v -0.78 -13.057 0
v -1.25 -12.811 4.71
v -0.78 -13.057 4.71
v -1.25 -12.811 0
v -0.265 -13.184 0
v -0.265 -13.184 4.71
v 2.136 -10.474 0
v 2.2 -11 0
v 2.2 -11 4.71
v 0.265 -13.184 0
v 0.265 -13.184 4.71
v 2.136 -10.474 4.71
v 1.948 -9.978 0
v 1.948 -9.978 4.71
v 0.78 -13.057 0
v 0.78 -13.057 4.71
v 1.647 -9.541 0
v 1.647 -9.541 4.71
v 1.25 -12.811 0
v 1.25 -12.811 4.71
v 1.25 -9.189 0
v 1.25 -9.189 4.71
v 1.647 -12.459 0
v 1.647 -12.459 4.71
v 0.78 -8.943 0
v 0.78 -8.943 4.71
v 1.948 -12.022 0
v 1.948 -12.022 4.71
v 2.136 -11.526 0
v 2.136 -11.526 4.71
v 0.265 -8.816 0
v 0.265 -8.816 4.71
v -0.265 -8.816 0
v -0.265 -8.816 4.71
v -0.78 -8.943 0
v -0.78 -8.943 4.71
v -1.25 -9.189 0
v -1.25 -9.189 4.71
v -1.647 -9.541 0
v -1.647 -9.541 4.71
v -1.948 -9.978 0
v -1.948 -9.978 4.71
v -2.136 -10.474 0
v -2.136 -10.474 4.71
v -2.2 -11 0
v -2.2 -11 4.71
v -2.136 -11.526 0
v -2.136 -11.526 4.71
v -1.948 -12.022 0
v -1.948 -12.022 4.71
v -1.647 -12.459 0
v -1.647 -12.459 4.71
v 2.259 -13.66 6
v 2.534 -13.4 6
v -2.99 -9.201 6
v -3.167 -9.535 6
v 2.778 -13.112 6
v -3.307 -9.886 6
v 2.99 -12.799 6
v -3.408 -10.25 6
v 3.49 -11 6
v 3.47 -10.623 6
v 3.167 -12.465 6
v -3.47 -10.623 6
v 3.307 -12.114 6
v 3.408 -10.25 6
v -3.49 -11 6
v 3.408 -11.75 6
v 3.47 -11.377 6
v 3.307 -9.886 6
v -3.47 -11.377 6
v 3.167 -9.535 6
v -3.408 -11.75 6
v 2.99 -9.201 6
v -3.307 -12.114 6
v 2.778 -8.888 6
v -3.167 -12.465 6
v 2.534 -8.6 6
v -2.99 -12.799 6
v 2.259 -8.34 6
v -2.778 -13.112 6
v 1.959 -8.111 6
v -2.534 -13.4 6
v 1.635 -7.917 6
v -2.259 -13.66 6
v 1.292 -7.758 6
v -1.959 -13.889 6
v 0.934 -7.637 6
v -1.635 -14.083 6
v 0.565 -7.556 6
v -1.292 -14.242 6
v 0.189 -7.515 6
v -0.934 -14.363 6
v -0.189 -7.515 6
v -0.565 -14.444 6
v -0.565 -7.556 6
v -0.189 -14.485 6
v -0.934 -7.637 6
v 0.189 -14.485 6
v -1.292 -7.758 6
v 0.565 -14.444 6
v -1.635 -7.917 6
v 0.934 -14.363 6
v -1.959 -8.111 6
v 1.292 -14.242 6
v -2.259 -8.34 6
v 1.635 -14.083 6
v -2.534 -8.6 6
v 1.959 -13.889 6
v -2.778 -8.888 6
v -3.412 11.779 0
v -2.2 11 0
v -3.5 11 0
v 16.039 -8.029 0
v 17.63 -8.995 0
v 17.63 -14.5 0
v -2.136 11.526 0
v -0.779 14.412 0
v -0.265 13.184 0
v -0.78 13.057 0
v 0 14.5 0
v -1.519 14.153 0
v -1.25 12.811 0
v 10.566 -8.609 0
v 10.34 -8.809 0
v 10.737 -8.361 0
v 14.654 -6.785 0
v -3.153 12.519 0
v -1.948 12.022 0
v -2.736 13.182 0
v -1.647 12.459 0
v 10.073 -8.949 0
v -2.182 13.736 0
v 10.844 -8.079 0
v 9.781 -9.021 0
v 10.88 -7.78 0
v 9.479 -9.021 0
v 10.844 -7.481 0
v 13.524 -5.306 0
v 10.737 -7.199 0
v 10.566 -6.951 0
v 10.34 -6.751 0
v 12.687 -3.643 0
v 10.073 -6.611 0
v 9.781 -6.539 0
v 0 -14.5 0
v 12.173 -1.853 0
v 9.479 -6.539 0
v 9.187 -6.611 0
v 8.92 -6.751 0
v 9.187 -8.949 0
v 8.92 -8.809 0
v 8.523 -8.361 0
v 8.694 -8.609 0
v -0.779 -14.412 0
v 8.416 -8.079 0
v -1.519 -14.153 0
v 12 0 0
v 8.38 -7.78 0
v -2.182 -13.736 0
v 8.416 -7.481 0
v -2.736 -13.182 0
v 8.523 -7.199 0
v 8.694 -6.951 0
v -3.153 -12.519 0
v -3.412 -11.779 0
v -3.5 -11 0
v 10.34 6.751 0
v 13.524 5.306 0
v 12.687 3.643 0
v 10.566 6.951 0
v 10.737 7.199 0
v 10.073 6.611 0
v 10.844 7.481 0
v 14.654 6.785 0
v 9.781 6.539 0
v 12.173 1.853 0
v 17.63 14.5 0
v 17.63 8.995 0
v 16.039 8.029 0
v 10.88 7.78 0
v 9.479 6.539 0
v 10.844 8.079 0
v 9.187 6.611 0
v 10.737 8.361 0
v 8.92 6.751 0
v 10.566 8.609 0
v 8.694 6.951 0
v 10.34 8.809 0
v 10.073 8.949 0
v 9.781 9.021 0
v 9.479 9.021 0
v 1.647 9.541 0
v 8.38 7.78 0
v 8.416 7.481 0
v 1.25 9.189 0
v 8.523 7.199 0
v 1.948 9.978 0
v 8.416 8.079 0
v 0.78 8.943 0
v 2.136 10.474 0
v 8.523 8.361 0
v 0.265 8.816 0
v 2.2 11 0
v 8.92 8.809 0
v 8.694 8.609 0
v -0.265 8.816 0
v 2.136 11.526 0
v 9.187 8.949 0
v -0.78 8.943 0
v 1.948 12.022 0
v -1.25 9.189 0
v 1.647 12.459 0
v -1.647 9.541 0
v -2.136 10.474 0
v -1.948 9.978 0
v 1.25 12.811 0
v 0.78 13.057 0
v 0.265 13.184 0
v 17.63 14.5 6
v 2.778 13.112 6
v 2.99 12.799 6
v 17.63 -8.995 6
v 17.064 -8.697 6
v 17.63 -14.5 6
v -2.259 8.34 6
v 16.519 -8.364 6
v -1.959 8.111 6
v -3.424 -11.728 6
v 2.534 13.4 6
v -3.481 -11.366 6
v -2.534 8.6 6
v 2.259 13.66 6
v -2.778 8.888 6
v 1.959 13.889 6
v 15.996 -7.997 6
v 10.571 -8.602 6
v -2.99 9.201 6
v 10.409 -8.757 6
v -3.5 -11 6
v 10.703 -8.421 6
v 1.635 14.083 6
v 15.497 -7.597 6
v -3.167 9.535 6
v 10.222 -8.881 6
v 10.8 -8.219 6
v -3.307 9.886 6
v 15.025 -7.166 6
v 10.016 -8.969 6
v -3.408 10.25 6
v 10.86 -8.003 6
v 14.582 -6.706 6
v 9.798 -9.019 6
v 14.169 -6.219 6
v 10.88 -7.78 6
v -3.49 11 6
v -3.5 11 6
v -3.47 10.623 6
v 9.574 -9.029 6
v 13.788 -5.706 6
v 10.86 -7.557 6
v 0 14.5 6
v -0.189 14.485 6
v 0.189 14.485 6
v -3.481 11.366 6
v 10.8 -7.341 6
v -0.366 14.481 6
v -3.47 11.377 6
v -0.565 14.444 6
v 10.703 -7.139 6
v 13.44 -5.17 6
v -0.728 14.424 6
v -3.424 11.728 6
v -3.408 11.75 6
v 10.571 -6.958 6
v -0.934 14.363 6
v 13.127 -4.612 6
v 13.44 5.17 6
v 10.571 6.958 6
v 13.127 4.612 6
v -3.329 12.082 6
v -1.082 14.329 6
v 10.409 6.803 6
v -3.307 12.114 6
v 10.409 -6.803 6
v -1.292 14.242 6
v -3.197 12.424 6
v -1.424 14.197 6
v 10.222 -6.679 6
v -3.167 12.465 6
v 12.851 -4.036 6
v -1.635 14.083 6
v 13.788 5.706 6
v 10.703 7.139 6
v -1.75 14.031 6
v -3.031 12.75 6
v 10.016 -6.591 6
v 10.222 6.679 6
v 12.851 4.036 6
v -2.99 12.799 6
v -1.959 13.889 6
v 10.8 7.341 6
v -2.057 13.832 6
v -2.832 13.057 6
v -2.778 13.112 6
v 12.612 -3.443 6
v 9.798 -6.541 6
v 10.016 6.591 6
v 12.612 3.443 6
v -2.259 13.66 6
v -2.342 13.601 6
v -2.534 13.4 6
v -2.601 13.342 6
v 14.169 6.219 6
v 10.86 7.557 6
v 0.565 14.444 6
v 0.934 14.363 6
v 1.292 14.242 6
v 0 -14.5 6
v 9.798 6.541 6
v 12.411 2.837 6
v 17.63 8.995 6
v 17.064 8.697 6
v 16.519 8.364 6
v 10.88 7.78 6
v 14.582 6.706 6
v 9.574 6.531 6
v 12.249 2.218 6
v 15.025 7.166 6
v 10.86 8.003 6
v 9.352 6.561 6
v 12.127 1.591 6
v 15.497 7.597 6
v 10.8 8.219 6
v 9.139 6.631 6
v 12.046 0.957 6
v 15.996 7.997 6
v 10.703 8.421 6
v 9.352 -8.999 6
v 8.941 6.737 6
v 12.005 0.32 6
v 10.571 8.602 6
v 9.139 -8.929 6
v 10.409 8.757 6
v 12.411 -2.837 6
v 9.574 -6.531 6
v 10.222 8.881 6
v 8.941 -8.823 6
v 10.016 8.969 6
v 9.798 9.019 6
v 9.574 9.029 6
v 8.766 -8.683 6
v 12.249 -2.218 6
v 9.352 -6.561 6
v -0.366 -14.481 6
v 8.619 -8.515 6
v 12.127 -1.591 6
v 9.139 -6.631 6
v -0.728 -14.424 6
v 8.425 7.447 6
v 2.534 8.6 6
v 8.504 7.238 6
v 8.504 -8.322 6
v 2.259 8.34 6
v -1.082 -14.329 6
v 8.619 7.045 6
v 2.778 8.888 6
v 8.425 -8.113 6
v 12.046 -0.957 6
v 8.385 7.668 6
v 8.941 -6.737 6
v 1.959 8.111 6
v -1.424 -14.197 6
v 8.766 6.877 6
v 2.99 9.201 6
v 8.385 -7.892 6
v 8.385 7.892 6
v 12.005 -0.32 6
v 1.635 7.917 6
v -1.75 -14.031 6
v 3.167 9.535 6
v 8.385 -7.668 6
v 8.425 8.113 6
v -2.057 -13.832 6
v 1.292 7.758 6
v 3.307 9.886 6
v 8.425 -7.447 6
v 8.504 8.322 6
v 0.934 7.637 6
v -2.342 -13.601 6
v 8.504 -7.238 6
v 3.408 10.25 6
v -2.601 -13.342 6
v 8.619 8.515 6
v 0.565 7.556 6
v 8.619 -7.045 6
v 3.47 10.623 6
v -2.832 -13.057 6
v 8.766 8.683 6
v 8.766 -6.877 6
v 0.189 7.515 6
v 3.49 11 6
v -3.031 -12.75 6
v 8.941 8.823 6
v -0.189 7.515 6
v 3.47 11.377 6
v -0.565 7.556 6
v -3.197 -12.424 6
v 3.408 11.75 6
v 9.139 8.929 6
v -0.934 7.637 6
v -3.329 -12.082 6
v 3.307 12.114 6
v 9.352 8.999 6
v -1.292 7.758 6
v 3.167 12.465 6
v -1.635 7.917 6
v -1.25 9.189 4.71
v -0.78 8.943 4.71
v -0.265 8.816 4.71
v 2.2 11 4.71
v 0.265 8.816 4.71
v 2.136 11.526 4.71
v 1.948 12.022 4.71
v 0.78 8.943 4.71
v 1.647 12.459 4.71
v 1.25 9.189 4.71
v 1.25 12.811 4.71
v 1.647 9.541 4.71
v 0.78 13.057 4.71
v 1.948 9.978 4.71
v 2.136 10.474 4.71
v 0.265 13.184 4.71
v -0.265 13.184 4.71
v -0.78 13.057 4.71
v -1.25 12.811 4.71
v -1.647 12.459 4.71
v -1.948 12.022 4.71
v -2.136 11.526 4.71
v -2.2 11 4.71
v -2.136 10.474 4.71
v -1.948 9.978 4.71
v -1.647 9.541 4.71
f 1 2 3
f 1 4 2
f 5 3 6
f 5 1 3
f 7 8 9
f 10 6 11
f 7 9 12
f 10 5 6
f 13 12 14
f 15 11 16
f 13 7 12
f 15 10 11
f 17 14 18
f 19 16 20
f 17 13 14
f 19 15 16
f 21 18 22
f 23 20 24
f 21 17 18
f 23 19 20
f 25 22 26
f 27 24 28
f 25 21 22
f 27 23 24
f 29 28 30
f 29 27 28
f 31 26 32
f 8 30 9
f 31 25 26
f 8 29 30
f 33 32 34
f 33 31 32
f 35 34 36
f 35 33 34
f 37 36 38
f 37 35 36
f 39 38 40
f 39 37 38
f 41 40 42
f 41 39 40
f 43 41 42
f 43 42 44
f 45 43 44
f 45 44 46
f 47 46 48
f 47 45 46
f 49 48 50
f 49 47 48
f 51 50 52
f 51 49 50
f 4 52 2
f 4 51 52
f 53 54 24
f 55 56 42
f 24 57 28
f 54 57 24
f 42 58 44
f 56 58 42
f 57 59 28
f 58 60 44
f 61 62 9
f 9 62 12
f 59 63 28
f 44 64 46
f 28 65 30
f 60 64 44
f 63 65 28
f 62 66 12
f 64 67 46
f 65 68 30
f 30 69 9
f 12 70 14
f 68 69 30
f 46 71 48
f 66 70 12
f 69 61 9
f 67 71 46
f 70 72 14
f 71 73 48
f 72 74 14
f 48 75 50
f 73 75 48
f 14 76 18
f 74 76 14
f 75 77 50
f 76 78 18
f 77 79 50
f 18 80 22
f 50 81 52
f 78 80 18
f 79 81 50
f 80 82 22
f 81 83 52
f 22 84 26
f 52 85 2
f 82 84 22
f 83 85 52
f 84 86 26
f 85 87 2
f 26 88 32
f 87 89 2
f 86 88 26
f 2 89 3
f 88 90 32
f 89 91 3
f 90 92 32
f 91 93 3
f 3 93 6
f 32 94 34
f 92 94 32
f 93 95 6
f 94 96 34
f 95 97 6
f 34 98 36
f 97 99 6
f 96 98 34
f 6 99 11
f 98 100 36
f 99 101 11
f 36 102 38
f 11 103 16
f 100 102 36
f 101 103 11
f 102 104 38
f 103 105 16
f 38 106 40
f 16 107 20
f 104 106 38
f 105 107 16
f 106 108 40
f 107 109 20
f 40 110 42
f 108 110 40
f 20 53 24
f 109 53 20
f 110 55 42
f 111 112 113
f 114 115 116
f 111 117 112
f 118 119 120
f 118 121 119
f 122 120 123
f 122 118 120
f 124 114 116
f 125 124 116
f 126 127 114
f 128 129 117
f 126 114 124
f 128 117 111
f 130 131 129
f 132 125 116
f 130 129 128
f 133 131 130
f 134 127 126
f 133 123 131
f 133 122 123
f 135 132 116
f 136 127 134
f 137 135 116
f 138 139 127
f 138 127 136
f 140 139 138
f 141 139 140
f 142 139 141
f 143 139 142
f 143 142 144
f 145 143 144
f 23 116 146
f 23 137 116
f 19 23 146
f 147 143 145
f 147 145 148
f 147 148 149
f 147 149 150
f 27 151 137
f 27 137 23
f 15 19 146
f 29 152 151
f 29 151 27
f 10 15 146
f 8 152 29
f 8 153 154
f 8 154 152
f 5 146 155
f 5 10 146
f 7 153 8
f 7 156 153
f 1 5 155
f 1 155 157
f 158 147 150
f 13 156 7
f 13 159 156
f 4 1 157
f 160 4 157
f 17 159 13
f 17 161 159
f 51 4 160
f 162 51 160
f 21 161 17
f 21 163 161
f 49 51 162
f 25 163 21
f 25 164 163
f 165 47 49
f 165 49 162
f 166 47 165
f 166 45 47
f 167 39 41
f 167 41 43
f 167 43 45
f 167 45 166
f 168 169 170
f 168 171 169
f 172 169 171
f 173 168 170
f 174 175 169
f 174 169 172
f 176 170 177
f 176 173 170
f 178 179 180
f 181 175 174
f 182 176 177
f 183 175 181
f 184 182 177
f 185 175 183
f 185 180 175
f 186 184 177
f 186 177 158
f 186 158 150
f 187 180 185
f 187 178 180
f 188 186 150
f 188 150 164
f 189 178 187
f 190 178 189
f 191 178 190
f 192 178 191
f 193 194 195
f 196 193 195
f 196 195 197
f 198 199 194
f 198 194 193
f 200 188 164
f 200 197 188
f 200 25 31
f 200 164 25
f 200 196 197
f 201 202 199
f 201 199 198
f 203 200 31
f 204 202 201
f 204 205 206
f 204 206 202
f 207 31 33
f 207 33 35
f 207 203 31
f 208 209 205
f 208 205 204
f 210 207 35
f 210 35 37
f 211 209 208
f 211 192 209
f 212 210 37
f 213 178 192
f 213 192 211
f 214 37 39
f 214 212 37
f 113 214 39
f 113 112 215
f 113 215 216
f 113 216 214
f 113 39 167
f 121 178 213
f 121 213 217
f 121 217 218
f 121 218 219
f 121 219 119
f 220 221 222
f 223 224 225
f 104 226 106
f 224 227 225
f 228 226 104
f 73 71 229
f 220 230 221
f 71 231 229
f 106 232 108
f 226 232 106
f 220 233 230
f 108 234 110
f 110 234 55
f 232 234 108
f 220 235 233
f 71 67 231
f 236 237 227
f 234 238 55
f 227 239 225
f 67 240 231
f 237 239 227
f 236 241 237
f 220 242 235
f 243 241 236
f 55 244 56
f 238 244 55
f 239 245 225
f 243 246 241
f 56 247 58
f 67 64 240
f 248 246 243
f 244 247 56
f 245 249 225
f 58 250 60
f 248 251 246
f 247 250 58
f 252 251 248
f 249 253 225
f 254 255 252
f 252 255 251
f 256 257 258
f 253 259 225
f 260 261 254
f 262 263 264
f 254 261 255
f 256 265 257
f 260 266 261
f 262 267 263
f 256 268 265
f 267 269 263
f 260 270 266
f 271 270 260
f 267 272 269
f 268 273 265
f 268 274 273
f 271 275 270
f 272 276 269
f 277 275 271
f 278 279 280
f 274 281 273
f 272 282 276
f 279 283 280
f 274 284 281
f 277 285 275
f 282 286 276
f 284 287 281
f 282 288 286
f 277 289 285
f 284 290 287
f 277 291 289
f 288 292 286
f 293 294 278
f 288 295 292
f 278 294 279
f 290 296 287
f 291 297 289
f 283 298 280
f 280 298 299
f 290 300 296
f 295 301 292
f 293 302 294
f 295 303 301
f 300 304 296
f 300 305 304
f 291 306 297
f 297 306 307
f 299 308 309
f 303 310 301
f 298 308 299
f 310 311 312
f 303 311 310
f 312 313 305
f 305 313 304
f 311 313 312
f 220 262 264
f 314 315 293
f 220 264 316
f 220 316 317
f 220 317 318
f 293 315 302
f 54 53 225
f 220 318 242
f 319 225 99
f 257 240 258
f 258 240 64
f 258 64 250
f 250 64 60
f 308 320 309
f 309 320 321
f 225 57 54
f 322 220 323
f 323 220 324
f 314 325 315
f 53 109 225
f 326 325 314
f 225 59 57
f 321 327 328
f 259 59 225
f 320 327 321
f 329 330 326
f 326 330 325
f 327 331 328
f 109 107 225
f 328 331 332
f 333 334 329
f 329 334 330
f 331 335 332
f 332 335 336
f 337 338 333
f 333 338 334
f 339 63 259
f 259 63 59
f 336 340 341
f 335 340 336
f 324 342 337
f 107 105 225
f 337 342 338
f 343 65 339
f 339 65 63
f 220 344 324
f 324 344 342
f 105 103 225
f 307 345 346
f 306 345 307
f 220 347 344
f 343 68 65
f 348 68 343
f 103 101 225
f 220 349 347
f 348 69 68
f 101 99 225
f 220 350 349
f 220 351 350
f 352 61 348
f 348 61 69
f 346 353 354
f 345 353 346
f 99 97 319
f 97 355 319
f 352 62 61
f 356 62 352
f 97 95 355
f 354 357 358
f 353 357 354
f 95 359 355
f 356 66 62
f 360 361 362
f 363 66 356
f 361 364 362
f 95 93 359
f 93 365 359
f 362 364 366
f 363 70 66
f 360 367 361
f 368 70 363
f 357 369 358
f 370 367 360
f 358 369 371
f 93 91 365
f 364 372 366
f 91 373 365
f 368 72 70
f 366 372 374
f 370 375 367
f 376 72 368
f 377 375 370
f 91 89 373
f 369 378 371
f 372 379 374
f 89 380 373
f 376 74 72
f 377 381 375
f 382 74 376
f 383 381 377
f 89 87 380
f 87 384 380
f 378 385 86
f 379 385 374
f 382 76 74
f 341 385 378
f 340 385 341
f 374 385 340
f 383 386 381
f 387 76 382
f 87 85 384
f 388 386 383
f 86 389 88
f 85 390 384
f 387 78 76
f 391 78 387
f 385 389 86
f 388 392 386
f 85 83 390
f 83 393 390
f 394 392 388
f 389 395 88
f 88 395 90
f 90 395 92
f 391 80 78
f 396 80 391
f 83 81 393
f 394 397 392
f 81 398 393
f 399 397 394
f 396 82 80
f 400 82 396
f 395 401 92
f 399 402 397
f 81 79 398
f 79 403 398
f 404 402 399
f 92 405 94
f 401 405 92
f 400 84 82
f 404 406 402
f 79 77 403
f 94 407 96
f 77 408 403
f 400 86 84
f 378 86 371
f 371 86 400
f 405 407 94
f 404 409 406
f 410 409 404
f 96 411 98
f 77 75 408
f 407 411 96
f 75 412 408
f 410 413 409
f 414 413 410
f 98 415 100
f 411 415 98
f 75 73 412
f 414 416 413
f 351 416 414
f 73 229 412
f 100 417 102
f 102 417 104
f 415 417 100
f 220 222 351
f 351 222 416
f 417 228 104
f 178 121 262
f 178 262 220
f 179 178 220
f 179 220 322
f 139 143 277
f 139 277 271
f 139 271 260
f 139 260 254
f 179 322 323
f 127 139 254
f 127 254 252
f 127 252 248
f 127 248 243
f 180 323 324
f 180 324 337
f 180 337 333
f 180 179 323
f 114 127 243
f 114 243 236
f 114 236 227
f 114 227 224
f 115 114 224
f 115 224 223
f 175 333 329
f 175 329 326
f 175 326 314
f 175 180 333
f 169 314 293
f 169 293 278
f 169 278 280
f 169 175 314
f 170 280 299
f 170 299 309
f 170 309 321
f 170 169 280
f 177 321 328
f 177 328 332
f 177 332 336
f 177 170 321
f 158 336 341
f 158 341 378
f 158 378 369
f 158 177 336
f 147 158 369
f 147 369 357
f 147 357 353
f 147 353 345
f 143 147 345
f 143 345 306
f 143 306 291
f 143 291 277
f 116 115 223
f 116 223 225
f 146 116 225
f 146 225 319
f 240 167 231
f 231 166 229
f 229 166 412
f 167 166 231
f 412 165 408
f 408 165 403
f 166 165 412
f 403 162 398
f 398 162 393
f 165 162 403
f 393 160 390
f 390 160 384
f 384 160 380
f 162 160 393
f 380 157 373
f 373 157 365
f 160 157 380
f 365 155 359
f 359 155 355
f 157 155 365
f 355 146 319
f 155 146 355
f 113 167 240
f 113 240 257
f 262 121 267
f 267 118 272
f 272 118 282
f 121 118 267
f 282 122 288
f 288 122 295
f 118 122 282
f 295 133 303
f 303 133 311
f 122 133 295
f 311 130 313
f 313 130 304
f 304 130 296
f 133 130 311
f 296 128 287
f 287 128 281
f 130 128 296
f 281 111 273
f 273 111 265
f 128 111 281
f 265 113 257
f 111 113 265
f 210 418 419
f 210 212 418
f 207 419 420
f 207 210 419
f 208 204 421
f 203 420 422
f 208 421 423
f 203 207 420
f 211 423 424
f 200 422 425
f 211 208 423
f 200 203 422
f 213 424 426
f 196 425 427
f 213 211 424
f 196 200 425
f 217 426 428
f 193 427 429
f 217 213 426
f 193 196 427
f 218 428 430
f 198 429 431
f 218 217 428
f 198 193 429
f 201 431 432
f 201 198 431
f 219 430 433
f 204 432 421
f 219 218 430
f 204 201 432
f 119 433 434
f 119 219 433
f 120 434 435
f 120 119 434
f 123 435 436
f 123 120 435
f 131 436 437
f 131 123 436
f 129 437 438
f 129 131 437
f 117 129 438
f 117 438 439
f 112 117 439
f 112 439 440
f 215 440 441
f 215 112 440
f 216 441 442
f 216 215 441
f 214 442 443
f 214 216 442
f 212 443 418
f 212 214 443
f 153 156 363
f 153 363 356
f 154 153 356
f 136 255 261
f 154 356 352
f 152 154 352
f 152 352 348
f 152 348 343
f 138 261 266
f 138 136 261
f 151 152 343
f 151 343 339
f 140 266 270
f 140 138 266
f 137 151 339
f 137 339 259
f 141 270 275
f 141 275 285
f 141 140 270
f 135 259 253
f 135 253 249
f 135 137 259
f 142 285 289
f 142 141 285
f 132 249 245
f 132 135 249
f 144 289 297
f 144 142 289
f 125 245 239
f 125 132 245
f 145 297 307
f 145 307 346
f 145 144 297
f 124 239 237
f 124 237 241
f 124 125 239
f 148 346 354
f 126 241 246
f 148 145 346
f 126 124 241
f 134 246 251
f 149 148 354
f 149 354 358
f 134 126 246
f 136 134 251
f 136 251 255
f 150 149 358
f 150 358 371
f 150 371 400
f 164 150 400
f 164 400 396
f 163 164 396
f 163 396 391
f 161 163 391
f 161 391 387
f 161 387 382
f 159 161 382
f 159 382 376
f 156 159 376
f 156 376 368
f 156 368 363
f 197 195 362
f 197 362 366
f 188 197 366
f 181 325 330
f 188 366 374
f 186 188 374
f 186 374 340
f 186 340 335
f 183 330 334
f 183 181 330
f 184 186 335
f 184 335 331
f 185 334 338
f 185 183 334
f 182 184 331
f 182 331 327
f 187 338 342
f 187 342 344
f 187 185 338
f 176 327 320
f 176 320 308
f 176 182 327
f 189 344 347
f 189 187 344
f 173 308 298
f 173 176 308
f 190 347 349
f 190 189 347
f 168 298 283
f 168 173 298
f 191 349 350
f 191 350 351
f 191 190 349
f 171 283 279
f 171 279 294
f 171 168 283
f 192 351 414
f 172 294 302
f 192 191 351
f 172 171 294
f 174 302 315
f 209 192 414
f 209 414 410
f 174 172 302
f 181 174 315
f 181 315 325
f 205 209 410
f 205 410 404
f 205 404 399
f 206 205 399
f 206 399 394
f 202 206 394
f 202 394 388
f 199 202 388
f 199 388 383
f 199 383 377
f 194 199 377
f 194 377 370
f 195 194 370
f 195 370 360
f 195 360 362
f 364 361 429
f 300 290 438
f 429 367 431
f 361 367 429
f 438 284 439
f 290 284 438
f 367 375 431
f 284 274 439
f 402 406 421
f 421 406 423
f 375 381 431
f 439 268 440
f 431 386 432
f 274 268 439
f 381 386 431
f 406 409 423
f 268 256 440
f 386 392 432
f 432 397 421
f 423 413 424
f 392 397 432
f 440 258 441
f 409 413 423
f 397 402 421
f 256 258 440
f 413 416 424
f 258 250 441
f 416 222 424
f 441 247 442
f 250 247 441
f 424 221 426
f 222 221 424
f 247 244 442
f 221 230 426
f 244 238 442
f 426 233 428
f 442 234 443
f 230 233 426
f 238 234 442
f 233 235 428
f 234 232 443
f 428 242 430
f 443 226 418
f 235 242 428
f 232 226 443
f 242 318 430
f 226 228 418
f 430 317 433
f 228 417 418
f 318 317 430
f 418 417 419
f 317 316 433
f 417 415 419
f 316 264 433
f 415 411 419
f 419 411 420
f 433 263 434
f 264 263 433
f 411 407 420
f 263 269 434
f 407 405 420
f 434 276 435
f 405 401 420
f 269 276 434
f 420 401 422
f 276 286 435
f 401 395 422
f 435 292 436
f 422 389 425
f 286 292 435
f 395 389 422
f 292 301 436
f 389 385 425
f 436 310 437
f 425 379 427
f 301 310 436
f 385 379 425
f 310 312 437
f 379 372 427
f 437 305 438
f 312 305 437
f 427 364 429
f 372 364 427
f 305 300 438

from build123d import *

# Parameters (mm, degrees)
SKETCH_R     = 2.2
SKETCH_R_2   = 1.25
PAD_DEPTH    = 6
CHAMFER_SIZE = 1.29


with BuildPart() as part:
    # Sketch → Pad (new body)
    with BuildSketch(Plane.XY):
        with BuildLine():
            Line((0, 14.5), (17.63, 14.5))
            Line((17.63, 14.5), (17.63, 8.994615))
            ThreePointArc((17.63, 8.994615), (12, 0), (17.63, -8.994615))
            Line((17.63, -8.994615), (17.63, -14.5))
            Line((17.63, -14.5), (0, -14.5))
            ThreePointArc((-3.5, -11), (-2.474874, -13.474874), (0, -14.5))
            Line((-3.5, -11), (-3.5, 11))
            ThreePointArc((0, 14.5), (-2.474874, 13.474874), (-3.5, 11))
        make_face()
        with Locations((0, 11)):
            Circle(SKETCH_R, mode=Mode.SUBTRACT)
        with Locations((0, -11)):
            Circle(SKETCH_R, mode=Mode.SUBTRACT)
        with Locations((9.63, 7.78)):
            Circle(SKETCH_R_2, mode=Mode.SUBTRACT)
        with Locations((9.63, -7.78)):
            Circle(SKETCH_R_2, mode=Mode.SUBTRACT)
    extrude(amount=PAD_DEPTH)

    # Chamfer
    chamfer_edges = [part.edges().sort_by_distance(p)[0] for p in [
        (-2.2, -11, 6),
        (-2.2, 11, 6),
    ]]
    chamfer(chamfer_edges, length=CHAMFER_SIZE)


solid = part.part
